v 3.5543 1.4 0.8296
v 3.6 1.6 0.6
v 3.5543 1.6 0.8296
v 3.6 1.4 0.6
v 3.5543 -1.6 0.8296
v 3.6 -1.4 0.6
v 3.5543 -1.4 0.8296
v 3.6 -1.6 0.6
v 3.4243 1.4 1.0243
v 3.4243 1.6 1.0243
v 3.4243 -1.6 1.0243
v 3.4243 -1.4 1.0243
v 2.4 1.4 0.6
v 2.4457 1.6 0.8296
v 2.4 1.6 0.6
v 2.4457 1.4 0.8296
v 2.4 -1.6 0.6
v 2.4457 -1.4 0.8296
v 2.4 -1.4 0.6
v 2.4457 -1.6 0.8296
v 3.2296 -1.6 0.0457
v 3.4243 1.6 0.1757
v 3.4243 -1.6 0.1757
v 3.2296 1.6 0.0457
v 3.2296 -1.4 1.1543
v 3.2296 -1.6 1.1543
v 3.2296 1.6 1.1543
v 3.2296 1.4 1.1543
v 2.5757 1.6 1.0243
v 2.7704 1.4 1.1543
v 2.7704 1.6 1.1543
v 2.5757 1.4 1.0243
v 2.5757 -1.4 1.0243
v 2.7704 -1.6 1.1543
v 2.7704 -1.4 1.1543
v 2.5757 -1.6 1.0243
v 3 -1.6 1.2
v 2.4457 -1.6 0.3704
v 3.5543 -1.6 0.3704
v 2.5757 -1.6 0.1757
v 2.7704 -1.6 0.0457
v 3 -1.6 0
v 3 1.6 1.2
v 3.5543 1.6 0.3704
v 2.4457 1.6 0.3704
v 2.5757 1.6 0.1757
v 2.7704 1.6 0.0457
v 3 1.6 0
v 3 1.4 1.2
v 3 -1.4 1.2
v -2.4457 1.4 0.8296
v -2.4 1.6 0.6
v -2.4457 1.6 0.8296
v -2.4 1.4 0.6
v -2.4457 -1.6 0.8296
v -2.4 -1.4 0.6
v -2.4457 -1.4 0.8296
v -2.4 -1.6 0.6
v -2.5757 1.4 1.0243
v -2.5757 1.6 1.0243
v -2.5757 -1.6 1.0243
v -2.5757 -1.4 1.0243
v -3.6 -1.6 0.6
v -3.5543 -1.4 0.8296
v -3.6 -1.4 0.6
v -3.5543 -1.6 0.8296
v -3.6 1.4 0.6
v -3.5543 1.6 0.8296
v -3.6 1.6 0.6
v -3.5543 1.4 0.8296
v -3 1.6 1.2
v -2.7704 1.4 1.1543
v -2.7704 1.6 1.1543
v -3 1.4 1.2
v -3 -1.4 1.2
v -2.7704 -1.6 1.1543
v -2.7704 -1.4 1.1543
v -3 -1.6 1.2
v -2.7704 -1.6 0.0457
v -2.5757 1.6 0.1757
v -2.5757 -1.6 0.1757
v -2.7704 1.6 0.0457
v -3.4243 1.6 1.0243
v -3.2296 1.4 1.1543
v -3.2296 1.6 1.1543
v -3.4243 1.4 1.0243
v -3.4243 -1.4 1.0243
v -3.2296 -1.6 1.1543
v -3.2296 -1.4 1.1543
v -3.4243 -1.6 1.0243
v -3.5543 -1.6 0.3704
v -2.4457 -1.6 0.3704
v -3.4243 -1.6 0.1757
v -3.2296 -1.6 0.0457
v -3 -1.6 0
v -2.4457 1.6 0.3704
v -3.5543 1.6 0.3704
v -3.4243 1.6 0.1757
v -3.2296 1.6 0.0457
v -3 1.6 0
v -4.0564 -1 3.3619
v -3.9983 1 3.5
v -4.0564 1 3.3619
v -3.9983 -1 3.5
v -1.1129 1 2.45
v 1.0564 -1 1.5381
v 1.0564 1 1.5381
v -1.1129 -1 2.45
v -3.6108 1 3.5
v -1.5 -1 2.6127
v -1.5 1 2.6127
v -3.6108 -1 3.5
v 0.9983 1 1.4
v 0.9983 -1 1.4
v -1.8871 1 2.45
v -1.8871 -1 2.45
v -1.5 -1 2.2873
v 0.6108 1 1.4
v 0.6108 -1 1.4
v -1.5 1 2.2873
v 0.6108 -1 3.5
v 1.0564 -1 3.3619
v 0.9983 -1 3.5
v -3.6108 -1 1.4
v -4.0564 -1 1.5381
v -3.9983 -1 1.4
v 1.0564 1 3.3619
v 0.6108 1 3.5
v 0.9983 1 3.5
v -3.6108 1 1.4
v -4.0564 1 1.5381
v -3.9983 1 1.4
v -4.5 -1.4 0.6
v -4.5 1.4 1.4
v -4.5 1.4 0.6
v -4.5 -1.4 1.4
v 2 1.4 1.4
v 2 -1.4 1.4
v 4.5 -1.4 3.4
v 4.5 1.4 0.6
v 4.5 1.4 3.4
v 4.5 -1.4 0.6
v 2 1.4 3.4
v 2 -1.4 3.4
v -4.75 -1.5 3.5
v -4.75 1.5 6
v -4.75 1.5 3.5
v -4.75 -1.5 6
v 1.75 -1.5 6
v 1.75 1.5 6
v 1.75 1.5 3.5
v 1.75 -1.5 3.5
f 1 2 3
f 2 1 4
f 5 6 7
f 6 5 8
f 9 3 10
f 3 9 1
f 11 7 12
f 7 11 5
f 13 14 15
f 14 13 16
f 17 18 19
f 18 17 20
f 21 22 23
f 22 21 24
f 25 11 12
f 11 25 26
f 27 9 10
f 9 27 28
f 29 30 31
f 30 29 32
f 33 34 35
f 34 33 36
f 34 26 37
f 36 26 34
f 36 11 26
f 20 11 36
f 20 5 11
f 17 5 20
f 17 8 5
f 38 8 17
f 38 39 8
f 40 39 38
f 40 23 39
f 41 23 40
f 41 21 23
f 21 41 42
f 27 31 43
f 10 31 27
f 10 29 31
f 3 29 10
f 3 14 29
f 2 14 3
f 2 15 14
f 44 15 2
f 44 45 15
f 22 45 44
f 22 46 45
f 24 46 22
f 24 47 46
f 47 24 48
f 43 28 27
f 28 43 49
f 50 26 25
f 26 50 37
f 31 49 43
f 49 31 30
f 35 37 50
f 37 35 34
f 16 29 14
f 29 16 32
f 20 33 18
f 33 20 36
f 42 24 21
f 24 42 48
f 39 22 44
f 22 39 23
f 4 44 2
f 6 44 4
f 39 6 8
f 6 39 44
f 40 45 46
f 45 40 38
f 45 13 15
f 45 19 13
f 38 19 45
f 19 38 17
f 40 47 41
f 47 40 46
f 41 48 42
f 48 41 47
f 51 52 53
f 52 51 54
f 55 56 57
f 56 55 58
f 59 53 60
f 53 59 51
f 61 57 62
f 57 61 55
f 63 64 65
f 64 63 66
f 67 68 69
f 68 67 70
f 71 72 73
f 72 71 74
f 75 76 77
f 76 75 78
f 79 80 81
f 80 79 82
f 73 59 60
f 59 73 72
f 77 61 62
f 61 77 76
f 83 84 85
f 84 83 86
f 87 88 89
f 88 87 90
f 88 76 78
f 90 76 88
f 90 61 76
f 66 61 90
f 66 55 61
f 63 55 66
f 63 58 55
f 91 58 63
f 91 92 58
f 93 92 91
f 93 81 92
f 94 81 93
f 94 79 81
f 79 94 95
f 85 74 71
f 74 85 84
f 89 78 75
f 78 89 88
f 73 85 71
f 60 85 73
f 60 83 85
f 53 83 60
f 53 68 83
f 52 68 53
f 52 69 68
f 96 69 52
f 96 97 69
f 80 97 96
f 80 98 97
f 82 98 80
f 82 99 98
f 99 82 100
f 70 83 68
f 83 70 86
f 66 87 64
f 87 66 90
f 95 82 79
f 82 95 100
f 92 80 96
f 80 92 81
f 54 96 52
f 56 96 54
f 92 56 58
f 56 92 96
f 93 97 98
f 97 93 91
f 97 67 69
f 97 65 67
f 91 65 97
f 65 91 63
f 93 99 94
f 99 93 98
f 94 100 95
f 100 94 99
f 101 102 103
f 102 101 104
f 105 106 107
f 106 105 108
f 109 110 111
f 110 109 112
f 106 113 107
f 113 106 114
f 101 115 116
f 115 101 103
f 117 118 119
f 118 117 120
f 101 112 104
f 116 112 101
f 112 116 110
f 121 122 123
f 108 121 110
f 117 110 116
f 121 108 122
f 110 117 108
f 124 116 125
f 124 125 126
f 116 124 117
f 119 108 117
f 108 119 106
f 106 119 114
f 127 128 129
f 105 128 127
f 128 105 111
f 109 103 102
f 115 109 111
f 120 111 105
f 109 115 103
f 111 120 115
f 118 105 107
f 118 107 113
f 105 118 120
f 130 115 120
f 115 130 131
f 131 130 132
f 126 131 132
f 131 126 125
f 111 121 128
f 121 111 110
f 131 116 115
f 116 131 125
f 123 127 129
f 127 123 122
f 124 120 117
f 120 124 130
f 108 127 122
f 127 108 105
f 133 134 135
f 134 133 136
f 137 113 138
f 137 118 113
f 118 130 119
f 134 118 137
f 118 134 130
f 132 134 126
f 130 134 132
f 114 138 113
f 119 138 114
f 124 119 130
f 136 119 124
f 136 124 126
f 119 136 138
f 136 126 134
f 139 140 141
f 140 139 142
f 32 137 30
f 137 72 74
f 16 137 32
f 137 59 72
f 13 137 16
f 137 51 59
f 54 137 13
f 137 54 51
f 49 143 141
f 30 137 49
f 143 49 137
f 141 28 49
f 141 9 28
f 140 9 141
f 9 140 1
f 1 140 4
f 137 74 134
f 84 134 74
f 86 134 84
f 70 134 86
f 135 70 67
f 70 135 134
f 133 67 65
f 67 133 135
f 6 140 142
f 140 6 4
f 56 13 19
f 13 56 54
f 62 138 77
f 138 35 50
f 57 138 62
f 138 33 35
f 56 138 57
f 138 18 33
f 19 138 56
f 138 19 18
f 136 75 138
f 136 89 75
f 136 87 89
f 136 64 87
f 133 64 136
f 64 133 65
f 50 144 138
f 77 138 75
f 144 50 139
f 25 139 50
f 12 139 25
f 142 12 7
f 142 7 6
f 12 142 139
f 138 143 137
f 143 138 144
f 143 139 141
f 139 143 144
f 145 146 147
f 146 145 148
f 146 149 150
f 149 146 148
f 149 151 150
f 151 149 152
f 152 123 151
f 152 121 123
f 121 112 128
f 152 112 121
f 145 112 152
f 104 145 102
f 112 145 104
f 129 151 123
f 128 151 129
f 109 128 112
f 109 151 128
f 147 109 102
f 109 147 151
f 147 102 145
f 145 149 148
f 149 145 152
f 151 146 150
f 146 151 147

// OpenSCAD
$fn = 16;

module airport_catering_truck() {
    
    color("black") {
        // Front
        translate([3, 0, 0.6]) 
            rotate([90, 0, 0]) 
            cylinder(h=3.2, r=0.6, center=true);
            
        // Rear
        translate([-3, 0, 0.6]) 
            rotate([90, 0, 0]) 
            cylinder(h=3.2, r=0.6, center=true);
    }

    color("darkgray") {
        translate([0, 0, 1.0]) 
            cube([9, 2.8, 0.8], center=true);
    }

    // Cab
    color("lightgray") {
        translate([3.25, 0, 2.4]) 
            cube([2.5, 2.8, 2.0], center=true);
    }

    // Scissor Lift
    color("gray") {
        translate([-1.5, 0, 2.45]) {
            rotate([0, 22.8, 0]) 
                cube([5.42, 2.0, 0.3], center=true);
            rotate([0, -22.8, 0]) 
                cube([5.42, 2.0, 0.3], center=true);
        }
    }

    // Catering Box
    color("white") {
        translate([-1.5, 0, 4.75]) 
            cube([6.5, 3.0, 2.5], center=true);
    }
}

airport_catering_truck();
